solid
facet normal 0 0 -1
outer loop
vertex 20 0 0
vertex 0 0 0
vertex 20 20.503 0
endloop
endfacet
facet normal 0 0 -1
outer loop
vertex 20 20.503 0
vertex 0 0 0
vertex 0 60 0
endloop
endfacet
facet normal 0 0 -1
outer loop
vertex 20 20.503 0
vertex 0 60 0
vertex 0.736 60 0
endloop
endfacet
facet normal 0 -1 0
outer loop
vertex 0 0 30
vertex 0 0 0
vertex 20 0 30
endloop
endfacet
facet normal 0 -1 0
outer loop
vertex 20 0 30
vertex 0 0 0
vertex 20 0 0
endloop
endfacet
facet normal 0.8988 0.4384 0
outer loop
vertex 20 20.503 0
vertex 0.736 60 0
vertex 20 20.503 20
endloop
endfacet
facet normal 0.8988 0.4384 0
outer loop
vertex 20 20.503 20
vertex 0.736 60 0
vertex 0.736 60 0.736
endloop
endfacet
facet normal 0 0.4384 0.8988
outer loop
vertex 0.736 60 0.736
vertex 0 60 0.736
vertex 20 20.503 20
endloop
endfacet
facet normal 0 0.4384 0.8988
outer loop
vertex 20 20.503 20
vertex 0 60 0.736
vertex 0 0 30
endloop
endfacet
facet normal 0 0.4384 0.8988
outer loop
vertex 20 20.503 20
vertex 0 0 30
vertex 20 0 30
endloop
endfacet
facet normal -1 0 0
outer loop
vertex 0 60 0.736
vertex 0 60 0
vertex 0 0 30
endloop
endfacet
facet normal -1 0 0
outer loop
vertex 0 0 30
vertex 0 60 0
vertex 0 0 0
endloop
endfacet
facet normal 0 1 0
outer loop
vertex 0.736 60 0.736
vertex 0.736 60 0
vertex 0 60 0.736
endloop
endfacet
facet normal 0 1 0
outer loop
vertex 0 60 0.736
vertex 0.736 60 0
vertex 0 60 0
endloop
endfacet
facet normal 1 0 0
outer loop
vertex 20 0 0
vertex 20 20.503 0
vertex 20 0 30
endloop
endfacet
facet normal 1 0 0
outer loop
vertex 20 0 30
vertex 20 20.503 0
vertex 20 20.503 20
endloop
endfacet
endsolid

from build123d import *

# Parameters (mm, degrees)
SKETCH1_W           = 30
SKETCH1_H           = 30
BOSS_EXTRUDE1_DEPTH = 60
CHAMFER1_SIZE       = 60
CHAMFER1_SIZE_2     = 29.263955314
SKETCH2_W           = 10
SKETCH2_H           = 30
CUT_EXTRUDE1_DEPTH  = 101


with BuildPart() as part:
    # Sketch1 → Boss-Extrude1 (new body)
    with BuildSketch(Plane(origin=(0, 0, 0), x_dir=(1, 0, 0), z_dir=(0, 1, 0))):
        with Locations((15, -15)):
            Rectangle(SKETCH1_W, SKETCH1_H)
    extrude(amount=BOSS_EXTRUDE1_DEPTH)

    # Chamfer1
    # the kernel refuses this chamfer: 60, 29.263955314 mm, written as the material it takes off along each edge
    with BuildSketch(Plane(origin=(30, 60, -155.415022708), x_dir=(0.01692389084982915, -0.999856780703368, 0), z_dir=(0, 0, 1)), Plane(origin=(185.415022708, 60, 30), x_dir=(0, -0.999856780703368, 0.01692389084982915), z_dir=(-1, 0, 0))) as chamfer1_piece_1:
        Polygon((CHAMFER1_SIZE * 0.999856780703, -CHAMFER1_SIZE * 0.0169238908498), (-CHAMFER1_SIZE_2 * 0.0169238908498, -CHAMFER1_SIZE_2 * 0.999856780702), (0, 0), align=None)
    extrude(amount=340.830045416, mode=Mode.SUBTRACT)

    # Sketch2 → Cut-Extrude1 (cut)
    with BuildSketch(Plane(origin=(0, 0, 0), x_dir=(1, 0, 0), z_dir=(0, 1, 0))):
        with Locations((25, -15)):
            Rectangle(SKETCH2_W, SKETCH2_H)
    extrude(amount=CUT_EXTRUDE1_DEPTH, mode=Mode.SUBTRACT)


solid = part.part
